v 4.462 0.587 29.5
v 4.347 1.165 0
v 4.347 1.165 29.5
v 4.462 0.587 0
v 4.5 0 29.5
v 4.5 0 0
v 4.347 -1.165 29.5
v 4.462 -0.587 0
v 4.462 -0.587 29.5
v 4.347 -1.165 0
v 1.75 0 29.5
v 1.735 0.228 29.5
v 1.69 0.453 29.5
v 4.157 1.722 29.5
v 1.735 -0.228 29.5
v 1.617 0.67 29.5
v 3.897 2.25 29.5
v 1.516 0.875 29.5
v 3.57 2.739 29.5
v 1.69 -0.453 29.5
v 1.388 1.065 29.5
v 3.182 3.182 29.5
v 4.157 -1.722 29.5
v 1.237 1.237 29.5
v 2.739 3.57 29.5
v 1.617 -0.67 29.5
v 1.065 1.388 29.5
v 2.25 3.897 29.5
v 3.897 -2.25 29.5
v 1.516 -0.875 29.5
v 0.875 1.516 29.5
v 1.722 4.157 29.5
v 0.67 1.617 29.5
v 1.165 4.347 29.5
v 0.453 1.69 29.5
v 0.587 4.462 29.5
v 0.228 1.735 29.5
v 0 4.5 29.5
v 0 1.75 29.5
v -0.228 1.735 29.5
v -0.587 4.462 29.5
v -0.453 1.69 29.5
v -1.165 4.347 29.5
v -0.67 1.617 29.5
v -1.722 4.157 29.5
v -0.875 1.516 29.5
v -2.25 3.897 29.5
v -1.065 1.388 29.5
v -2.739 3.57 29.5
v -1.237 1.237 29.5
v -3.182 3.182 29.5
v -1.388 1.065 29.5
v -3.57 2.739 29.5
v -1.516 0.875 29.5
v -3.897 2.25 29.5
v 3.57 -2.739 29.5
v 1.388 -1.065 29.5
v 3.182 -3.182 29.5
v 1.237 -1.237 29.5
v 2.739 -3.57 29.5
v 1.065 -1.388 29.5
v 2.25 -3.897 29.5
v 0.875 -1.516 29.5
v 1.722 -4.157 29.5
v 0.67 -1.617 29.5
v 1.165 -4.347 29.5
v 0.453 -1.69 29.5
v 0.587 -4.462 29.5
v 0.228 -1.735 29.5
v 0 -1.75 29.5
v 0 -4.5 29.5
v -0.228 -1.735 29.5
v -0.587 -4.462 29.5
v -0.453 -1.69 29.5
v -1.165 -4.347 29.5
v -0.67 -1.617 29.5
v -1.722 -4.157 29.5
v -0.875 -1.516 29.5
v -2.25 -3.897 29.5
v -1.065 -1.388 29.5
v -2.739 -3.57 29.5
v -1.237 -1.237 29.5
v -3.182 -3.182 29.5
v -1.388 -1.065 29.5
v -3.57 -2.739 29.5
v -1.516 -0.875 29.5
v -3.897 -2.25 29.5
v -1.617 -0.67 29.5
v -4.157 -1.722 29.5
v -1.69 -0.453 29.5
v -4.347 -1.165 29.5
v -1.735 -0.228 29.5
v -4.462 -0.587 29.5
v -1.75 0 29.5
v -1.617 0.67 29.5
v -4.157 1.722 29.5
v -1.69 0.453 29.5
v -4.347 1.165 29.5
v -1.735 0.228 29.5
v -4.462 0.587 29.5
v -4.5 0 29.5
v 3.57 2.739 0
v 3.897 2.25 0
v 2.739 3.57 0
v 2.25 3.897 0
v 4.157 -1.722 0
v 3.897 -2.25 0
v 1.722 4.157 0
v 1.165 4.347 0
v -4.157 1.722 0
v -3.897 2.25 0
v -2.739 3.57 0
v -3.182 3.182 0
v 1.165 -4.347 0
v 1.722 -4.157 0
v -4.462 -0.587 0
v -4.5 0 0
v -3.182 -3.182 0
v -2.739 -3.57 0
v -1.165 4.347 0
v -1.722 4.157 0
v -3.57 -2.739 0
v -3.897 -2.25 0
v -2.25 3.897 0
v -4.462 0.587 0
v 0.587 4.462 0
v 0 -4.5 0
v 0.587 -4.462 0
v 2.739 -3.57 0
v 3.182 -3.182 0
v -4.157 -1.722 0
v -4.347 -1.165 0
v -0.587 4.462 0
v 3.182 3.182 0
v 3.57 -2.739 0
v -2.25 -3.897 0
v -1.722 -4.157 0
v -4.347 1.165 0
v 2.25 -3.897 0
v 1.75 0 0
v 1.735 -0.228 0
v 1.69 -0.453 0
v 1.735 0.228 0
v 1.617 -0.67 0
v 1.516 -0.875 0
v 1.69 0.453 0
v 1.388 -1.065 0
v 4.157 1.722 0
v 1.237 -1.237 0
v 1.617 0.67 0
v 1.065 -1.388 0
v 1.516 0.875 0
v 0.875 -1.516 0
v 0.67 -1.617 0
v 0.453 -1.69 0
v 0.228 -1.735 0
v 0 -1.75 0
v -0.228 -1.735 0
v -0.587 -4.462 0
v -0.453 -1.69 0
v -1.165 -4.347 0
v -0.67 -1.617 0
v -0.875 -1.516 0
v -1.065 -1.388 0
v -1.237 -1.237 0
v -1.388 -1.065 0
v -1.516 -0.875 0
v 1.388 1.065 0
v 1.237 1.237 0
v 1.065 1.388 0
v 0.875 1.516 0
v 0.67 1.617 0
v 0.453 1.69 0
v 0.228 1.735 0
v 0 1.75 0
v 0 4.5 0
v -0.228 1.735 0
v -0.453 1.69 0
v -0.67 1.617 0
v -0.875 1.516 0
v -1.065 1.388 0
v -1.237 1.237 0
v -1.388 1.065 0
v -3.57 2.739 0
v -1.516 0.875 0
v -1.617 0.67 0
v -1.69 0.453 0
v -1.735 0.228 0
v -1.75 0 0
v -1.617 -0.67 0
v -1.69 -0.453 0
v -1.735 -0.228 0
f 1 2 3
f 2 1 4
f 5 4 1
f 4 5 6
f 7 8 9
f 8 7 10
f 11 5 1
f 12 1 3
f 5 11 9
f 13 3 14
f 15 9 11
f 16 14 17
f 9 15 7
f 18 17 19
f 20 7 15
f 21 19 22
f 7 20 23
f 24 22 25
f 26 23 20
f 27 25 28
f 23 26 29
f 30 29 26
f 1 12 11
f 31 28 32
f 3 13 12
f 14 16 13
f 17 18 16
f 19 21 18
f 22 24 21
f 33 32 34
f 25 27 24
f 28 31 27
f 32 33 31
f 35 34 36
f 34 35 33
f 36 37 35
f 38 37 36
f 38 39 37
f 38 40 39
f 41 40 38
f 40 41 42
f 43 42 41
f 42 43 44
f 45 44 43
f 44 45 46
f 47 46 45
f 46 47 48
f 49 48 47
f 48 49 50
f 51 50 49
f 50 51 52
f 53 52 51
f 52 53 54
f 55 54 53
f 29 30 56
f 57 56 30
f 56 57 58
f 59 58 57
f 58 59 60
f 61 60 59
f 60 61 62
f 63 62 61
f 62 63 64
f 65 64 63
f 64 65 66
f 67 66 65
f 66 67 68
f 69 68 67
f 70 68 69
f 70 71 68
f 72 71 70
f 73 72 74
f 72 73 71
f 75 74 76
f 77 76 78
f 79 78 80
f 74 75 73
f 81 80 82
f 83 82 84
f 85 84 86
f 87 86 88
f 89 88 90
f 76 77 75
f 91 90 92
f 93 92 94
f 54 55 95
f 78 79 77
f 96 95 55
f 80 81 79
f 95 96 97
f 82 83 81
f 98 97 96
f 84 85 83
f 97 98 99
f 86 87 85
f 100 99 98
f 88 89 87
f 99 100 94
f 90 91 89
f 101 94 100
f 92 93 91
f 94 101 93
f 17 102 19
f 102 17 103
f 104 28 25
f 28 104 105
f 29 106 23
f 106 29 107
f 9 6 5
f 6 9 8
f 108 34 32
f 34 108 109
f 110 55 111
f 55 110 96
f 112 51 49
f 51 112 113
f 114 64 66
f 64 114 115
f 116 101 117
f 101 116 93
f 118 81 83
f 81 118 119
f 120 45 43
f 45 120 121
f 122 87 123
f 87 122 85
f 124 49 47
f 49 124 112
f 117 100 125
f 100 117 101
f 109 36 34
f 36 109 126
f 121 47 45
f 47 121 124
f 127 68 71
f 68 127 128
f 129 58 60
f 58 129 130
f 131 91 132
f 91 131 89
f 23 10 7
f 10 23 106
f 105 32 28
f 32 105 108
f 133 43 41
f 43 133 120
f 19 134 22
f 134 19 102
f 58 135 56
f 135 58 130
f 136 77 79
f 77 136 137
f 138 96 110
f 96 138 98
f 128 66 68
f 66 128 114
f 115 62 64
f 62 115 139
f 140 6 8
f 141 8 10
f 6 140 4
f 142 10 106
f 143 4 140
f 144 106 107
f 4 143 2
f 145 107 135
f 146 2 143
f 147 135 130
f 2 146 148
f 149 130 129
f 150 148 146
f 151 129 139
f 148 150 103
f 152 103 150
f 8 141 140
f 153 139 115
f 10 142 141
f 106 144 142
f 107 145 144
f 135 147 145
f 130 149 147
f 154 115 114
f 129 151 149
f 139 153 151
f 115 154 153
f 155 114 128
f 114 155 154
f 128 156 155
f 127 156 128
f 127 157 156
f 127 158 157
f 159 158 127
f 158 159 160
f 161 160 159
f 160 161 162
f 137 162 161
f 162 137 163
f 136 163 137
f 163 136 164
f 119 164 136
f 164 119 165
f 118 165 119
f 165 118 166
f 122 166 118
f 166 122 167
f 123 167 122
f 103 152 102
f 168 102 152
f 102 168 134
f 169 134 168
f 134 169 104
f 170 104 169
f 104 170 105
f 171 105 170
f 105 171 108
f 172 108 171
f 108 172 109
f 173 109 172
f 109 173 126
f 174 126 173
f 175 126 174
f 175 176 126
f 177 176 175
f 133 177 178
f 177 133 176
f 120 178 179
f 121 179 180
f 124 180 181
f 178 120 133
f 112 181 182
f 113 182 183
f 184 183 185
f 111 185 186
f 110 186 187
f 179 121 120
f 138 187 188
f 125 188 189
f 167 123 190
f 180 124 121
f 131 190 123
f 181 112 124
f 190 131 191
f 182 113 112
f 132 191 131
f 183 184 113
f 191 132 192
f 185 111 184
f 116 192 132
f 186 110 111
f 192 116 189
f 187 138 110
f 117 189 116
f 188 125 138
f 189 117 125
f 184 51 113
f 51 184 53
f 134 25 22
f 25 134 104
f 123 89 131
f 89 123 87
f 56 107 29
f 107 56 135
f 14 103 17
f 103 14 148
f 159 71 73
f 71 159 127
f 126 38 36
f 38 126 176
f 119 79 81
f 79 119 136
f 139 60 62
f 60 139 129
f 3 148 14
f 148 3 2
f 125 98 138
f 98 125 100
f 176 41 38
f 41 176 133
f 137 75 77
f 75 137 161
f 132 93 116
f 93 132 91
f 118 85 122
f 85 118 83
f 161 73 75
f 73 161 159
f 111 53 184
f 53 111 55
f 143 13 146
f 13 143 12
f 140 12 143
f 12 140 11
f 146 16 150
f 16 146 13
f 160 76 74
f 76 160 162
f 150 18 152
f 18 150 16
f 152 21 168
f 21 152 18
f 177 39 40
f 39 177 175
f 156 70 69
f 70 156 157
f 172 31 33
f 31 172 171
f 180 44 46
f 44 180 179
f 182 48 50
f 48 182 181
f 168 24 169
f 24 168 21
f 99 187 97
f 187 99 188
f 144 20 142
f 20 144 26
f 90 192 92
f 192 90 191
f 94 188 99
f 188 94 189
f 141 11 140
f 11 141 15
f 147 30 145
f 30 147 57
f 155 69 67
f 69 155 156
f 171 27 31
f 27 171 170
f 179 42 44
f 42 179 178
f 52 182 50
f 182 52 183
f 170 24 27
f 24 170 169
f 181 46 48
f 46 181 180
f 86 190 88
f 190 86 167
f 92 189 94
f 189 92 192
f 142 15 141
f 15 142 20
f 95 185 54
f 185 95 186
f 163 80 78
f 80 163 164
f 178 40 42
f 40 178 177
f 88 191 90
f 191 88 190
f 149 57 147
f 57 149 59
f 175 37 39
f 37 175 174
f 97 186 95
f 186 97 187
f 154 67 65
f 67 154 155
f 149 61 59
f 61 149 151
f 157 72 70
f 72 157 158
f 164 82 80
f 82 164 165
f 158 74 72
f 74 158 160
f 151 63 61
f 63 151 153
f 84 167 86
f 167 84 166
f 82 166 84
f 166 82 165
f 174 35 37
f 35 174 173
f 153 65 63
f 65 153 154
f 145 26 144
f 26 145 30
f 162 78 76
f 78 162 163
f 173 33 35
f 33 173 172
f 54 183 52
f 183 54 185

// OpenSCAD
// Gen-DA — frame standoff tube between stator and an endbell, on each M3 frame rod (outside rotor OD).
// Print x4. Height = frame_standoff_h (rotor + steel + hub + collar + running clearance).
include <parameters.scad>;
$fn = 48;
difference() {
    cylinder(d=standoff_od, h=frame_standoff_h);
    translate([0, 0, -0.1]) cylinder(d=m3_clear, h=frame_standoff_h + 0.2);
}
